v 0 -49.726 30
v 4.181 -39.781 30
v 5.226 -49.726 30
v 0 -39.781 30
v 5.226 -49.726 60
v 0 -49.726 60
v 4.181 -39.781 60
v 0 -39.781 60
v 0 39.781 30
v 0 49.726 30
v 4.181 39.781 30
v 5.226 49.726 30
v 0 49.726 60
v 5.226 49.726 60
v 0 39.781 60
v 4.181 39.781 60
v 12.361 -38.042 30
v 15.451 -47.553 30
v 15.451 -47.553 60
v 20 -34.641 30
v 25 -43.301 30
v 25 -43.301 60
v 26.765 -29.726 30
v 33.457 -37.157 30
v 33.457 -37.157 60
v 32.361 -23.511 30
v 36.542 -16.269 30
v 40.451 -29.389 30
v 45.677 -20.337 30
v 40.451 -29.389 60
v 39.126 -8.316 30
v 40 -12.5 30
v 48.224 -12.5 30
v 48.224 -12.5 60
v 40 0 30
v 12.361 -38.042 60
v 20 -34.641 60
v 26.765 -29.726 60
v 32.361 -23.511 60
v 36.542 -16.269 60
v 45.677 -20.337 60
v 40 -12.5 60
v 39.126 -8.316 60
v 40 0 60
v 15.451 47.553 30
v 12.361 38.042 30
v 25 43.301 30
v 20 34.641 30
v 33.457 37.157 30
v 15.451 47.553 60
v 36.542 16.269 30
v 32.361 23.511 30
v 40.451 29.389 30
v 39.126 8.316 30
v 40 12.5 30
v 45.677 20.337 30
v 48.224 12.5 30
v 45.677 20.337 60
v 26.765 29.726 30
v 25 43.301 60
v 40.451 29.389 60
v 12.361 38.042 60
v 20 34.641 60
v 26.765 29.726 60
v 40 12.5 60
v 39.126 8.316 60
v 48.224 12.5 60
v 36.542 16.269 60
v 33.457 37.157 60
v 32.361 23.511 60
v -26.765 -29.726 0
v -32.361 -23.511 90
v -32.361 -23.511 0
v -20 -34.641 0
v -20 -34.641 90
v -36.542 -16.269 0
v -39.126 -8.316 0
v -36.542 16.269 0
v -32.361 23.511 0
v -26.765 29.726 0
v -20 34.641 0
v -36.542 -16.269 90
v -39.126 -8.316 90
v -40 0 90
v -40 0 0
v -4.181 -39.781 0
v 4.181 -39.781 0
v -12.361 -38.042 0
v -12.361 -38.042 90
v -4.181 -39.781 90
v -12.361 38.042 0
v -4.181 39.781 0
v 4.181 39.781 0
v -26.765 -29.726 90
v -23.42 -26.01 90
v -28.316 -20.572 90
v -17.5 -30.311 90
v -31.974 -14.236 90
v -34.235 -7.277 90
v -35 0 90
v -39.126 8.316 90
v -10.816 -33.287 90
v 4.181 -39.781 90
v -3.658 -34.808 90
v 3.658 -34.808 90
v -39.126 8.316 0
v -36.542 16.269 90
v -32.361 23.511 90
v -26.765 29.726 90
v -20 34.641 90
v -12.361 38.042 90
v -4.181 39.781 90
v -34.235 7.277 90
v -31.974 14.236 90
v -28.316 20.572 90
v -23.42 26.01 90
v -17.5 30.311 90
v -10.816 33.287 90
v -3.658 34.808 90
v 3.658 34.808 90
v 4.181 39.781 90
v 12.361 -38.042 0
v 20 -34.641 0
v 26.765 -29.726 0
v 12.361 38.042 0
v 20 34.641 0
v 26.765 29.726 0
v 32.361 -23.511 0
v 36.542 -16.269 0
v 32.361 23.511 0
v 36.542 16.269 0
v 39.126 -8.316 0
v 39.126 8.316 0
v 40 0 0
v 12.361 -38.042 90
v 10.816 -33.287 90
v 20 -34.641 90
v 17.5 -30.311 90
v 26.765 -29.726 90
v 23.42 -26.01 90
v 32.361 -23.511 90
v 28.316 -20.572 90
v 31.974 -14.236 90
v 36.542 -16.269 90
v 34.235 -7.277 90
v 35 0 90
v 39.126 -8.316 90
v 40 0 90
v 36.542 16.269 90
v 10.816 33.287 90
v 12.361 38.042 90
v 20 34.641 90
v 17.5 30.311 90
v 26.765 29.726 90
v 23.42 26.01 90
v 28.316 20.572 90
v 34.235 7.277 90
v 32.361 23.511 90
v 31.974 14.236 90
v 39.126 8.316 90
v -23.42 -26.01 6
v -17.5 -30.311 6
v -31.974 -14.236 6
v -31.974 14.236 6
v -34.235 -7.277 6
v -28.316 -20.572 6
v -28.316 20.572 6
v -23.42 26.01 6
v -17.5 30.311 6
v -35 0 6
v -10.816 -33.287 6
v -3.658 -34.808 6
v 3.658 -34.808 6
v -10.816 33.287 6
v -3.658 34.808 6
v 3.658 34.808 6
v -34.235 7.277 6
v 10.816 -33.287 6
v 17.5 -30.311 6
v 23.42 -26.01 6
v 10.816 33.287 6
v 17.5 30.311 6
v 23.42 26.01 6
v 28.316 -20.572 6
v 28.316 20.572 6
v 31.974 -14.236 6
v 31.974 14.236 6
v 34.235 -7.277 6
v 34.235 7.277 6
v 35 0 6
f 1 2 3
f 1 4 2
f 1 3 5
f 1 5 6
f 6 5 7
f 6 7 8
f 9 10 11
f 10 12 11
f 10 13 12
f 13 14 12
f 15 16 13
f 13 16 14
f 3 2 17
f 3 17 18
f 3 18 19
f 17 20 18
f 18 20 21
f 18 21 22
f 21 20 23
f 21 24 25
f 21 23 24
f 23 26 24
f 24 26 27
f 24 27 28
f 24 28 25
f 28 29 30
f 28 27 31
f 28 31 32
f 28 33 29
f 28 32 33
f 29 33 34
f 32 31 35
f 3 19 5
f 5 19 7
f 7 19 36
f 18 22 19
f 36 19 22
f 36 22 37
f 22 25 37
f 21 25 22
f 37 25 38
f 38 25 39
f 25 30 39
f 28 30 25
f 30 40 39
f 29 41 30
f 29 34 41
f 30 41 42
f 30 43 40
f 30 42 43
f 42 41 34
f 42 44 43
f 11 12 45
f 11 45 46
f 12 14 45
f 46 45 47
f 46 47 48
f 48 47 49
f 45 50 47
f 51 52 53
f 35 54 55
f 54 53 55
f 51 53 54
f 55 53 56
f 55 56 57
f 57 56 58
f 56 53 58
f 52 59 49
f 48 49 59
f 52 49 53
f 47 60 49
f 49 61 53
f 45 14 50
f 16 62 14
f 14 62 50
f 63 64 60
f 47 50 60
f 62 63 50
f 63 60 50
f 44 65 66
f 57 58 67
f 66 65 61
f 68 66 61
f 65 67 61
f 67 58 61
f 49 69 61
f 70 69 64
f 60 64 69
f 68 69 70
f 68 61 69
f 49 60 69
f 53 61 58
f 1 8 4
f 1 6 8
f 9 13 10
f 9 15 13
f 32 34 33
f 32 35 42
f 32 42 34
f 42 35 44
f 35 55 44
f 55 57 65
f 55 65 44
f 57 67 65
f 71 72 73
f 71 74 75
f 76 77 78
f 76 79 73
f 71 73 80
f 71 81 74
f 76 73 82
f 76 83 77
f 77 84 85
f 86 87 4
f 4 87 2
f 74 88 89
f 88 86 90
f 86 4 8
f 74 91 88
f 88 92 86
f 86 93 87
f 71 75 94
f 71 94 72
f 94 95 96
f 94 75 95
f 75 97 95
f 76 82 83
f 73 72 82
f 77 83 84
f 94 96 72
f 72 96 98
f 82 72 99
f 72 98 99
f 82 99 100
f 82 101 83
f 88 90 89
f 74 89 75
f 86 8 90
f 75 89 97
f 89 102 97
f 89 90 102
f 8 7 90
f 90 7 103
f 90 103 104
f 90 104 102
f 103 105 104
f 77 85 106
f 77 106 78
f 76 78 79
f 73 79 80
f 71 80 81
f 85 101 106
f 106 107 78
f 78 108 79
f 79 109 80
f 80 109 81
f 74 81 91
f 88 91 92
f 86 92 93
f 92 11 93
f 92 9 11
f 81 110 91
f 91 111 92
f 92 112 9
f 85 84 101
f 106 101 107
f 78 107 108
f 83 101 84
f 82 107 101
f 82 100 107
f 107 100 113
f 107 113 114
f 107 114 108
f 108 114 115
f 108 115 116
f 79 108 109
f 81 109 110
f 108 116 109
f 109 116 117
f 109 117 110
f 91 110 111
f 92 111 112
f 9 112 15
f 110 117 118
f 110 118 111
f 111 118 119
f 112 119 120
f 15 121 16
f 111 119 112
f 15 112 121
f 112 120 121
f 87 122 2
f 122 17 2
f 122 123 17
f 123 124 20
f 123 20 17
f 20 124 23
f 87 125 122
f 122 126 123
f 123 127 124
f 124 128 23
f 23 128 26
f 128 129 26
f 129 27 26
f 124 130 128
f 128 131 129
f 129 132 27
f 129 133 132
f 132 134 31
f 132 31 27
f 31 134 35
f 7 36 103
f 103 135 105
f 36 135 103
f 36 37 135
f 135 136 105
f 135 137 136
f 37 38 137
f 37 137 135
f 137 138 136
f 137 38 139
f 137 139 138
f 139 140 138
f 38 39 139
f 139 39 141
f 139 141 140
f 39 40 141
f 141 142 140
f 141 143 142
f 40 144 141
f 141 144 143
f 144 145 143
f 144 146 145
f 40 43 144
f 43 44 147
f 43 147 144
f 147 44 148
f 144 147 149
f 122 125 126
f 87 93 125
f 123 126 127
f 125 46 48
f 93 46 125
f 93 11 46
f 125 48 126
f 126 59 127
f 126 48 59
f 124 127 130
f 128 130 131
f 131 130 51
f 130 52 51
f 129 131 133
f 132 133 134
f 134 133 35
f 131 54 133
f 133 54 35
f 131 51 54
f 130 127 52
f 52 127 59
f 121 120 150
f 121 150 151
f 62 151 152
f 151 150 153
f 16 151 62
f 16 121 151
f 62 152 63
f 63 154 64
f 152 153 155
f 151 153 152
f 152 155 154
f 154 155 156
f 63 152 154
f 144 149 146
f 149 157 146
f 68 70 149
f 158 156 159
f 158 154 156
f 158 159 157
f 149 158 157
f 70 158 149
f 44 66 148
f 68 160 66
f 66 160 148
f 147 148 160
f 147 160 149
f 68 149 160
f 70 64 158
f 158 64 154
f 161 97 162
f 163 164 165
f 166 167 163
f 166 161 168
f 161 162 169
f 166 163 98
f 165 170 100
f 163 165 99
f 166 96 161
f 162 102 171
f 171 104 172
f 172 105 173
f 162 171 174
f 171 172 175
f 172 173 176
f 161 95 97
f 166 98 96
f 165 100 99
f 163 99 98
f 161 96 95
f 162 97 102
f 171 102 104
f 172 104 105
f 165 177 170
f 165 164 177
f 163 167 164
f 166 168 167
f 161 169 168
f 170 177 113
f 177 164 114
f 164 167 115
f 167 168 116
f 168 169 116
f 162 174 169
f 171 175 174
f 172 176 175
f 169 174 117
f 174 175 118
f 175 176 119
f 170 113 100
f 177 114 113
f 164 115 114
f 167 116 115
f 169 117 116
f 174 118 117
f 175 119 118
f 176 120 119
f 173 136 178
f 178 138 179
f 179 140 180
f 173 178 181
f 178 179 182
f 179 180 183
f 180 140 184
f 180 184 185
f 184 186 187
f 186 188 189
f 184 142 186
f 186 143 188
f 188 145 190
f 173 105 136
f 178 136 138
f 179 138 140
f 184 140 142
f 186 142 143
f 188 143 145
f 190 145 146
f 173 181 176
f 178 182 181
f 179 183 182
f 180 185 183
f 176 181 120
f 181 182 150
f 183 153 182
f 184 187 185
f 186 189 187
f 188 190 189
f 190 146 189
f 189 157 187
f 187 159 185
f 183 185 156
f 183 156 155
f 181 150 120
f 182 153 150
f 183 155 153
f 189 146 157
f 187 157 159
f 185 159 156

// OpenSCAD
// マグカップの本体
module mug_body() {
    // 外側の円筒
    cylinder(h = 90, r = 40, center = false);
}

// マグカップの空洞(取手との干渉を避けるため)
module mug_hollow() {
    // 内側の空洞(高さ84mm分)
    translate([0, 0, 6]) {
        cylinder(h = 84, r = 35, center = false);
    }
}

// D字形の取手
module handle() {
    // 取手の寸法
    handle_inner_height = 30;  // 指が入る高さ
    handle_inner_width = 25;   // 指が入る幅(内側)
    
    // 取手の外側半径(本体外周から延びる)
    handle_outer_radius = 50;  // マグ外径40mm + 取手の厚さで約50mm
    
    // 取手の開始高さ(マグの高さ方向中央付近)
    handle_z_start = 30;  // 高さ30mmから開始
    
    // 取手を X > 0 の側面に配置
    // 外側が半円、本体側が直線のD字形
    
    difference() {
        // 外側の半円柱と本体接続部分
        union() {
            // 外側の半円部分
            translate([0, 0, handle_z_start]) {
                difference() {
                    // 大きな円筒の一部
                    cylinder(h = handle_inner_height, r = handle_outer_radius, center = false);
                    // マグ本体の外径より内側を削除
                    cylinder(h = handle_inner_height, r = 40, center = false);
                    // X < 0 の部分を削除(+X方向のみに取手を配置)
                    translate([-100, -100, -1]) {
                        cube([100, 200, handle_inner_height + 2]);
                    }
                }
            }
            // マグ本体と取手の接続部分
            translate([0, 0, handle_z_start]) {
                // X軸方向の厚みを持つ接続ブロック
                translate([0, -5, 0]) {
                    cube([handle_outer_radius - 40, 10, handle_inner_height]);
                }
            }
        }
        
        // 取手の内側をくり抜く(D字形の直線部分)
        translate([40, -handle_inner_width/2, handle_z_start]) {
            cube([handle_outer_radius - 40 + 1, handle_inner_width, handle_inner_height]);
        }
    }
}

// メイン処理
difference() {
    union() {
        // マグカップ本体
        mug_body();
        // 取手
        handle();
    }
    // マグカップの空洞
    mug_hollow();
}
